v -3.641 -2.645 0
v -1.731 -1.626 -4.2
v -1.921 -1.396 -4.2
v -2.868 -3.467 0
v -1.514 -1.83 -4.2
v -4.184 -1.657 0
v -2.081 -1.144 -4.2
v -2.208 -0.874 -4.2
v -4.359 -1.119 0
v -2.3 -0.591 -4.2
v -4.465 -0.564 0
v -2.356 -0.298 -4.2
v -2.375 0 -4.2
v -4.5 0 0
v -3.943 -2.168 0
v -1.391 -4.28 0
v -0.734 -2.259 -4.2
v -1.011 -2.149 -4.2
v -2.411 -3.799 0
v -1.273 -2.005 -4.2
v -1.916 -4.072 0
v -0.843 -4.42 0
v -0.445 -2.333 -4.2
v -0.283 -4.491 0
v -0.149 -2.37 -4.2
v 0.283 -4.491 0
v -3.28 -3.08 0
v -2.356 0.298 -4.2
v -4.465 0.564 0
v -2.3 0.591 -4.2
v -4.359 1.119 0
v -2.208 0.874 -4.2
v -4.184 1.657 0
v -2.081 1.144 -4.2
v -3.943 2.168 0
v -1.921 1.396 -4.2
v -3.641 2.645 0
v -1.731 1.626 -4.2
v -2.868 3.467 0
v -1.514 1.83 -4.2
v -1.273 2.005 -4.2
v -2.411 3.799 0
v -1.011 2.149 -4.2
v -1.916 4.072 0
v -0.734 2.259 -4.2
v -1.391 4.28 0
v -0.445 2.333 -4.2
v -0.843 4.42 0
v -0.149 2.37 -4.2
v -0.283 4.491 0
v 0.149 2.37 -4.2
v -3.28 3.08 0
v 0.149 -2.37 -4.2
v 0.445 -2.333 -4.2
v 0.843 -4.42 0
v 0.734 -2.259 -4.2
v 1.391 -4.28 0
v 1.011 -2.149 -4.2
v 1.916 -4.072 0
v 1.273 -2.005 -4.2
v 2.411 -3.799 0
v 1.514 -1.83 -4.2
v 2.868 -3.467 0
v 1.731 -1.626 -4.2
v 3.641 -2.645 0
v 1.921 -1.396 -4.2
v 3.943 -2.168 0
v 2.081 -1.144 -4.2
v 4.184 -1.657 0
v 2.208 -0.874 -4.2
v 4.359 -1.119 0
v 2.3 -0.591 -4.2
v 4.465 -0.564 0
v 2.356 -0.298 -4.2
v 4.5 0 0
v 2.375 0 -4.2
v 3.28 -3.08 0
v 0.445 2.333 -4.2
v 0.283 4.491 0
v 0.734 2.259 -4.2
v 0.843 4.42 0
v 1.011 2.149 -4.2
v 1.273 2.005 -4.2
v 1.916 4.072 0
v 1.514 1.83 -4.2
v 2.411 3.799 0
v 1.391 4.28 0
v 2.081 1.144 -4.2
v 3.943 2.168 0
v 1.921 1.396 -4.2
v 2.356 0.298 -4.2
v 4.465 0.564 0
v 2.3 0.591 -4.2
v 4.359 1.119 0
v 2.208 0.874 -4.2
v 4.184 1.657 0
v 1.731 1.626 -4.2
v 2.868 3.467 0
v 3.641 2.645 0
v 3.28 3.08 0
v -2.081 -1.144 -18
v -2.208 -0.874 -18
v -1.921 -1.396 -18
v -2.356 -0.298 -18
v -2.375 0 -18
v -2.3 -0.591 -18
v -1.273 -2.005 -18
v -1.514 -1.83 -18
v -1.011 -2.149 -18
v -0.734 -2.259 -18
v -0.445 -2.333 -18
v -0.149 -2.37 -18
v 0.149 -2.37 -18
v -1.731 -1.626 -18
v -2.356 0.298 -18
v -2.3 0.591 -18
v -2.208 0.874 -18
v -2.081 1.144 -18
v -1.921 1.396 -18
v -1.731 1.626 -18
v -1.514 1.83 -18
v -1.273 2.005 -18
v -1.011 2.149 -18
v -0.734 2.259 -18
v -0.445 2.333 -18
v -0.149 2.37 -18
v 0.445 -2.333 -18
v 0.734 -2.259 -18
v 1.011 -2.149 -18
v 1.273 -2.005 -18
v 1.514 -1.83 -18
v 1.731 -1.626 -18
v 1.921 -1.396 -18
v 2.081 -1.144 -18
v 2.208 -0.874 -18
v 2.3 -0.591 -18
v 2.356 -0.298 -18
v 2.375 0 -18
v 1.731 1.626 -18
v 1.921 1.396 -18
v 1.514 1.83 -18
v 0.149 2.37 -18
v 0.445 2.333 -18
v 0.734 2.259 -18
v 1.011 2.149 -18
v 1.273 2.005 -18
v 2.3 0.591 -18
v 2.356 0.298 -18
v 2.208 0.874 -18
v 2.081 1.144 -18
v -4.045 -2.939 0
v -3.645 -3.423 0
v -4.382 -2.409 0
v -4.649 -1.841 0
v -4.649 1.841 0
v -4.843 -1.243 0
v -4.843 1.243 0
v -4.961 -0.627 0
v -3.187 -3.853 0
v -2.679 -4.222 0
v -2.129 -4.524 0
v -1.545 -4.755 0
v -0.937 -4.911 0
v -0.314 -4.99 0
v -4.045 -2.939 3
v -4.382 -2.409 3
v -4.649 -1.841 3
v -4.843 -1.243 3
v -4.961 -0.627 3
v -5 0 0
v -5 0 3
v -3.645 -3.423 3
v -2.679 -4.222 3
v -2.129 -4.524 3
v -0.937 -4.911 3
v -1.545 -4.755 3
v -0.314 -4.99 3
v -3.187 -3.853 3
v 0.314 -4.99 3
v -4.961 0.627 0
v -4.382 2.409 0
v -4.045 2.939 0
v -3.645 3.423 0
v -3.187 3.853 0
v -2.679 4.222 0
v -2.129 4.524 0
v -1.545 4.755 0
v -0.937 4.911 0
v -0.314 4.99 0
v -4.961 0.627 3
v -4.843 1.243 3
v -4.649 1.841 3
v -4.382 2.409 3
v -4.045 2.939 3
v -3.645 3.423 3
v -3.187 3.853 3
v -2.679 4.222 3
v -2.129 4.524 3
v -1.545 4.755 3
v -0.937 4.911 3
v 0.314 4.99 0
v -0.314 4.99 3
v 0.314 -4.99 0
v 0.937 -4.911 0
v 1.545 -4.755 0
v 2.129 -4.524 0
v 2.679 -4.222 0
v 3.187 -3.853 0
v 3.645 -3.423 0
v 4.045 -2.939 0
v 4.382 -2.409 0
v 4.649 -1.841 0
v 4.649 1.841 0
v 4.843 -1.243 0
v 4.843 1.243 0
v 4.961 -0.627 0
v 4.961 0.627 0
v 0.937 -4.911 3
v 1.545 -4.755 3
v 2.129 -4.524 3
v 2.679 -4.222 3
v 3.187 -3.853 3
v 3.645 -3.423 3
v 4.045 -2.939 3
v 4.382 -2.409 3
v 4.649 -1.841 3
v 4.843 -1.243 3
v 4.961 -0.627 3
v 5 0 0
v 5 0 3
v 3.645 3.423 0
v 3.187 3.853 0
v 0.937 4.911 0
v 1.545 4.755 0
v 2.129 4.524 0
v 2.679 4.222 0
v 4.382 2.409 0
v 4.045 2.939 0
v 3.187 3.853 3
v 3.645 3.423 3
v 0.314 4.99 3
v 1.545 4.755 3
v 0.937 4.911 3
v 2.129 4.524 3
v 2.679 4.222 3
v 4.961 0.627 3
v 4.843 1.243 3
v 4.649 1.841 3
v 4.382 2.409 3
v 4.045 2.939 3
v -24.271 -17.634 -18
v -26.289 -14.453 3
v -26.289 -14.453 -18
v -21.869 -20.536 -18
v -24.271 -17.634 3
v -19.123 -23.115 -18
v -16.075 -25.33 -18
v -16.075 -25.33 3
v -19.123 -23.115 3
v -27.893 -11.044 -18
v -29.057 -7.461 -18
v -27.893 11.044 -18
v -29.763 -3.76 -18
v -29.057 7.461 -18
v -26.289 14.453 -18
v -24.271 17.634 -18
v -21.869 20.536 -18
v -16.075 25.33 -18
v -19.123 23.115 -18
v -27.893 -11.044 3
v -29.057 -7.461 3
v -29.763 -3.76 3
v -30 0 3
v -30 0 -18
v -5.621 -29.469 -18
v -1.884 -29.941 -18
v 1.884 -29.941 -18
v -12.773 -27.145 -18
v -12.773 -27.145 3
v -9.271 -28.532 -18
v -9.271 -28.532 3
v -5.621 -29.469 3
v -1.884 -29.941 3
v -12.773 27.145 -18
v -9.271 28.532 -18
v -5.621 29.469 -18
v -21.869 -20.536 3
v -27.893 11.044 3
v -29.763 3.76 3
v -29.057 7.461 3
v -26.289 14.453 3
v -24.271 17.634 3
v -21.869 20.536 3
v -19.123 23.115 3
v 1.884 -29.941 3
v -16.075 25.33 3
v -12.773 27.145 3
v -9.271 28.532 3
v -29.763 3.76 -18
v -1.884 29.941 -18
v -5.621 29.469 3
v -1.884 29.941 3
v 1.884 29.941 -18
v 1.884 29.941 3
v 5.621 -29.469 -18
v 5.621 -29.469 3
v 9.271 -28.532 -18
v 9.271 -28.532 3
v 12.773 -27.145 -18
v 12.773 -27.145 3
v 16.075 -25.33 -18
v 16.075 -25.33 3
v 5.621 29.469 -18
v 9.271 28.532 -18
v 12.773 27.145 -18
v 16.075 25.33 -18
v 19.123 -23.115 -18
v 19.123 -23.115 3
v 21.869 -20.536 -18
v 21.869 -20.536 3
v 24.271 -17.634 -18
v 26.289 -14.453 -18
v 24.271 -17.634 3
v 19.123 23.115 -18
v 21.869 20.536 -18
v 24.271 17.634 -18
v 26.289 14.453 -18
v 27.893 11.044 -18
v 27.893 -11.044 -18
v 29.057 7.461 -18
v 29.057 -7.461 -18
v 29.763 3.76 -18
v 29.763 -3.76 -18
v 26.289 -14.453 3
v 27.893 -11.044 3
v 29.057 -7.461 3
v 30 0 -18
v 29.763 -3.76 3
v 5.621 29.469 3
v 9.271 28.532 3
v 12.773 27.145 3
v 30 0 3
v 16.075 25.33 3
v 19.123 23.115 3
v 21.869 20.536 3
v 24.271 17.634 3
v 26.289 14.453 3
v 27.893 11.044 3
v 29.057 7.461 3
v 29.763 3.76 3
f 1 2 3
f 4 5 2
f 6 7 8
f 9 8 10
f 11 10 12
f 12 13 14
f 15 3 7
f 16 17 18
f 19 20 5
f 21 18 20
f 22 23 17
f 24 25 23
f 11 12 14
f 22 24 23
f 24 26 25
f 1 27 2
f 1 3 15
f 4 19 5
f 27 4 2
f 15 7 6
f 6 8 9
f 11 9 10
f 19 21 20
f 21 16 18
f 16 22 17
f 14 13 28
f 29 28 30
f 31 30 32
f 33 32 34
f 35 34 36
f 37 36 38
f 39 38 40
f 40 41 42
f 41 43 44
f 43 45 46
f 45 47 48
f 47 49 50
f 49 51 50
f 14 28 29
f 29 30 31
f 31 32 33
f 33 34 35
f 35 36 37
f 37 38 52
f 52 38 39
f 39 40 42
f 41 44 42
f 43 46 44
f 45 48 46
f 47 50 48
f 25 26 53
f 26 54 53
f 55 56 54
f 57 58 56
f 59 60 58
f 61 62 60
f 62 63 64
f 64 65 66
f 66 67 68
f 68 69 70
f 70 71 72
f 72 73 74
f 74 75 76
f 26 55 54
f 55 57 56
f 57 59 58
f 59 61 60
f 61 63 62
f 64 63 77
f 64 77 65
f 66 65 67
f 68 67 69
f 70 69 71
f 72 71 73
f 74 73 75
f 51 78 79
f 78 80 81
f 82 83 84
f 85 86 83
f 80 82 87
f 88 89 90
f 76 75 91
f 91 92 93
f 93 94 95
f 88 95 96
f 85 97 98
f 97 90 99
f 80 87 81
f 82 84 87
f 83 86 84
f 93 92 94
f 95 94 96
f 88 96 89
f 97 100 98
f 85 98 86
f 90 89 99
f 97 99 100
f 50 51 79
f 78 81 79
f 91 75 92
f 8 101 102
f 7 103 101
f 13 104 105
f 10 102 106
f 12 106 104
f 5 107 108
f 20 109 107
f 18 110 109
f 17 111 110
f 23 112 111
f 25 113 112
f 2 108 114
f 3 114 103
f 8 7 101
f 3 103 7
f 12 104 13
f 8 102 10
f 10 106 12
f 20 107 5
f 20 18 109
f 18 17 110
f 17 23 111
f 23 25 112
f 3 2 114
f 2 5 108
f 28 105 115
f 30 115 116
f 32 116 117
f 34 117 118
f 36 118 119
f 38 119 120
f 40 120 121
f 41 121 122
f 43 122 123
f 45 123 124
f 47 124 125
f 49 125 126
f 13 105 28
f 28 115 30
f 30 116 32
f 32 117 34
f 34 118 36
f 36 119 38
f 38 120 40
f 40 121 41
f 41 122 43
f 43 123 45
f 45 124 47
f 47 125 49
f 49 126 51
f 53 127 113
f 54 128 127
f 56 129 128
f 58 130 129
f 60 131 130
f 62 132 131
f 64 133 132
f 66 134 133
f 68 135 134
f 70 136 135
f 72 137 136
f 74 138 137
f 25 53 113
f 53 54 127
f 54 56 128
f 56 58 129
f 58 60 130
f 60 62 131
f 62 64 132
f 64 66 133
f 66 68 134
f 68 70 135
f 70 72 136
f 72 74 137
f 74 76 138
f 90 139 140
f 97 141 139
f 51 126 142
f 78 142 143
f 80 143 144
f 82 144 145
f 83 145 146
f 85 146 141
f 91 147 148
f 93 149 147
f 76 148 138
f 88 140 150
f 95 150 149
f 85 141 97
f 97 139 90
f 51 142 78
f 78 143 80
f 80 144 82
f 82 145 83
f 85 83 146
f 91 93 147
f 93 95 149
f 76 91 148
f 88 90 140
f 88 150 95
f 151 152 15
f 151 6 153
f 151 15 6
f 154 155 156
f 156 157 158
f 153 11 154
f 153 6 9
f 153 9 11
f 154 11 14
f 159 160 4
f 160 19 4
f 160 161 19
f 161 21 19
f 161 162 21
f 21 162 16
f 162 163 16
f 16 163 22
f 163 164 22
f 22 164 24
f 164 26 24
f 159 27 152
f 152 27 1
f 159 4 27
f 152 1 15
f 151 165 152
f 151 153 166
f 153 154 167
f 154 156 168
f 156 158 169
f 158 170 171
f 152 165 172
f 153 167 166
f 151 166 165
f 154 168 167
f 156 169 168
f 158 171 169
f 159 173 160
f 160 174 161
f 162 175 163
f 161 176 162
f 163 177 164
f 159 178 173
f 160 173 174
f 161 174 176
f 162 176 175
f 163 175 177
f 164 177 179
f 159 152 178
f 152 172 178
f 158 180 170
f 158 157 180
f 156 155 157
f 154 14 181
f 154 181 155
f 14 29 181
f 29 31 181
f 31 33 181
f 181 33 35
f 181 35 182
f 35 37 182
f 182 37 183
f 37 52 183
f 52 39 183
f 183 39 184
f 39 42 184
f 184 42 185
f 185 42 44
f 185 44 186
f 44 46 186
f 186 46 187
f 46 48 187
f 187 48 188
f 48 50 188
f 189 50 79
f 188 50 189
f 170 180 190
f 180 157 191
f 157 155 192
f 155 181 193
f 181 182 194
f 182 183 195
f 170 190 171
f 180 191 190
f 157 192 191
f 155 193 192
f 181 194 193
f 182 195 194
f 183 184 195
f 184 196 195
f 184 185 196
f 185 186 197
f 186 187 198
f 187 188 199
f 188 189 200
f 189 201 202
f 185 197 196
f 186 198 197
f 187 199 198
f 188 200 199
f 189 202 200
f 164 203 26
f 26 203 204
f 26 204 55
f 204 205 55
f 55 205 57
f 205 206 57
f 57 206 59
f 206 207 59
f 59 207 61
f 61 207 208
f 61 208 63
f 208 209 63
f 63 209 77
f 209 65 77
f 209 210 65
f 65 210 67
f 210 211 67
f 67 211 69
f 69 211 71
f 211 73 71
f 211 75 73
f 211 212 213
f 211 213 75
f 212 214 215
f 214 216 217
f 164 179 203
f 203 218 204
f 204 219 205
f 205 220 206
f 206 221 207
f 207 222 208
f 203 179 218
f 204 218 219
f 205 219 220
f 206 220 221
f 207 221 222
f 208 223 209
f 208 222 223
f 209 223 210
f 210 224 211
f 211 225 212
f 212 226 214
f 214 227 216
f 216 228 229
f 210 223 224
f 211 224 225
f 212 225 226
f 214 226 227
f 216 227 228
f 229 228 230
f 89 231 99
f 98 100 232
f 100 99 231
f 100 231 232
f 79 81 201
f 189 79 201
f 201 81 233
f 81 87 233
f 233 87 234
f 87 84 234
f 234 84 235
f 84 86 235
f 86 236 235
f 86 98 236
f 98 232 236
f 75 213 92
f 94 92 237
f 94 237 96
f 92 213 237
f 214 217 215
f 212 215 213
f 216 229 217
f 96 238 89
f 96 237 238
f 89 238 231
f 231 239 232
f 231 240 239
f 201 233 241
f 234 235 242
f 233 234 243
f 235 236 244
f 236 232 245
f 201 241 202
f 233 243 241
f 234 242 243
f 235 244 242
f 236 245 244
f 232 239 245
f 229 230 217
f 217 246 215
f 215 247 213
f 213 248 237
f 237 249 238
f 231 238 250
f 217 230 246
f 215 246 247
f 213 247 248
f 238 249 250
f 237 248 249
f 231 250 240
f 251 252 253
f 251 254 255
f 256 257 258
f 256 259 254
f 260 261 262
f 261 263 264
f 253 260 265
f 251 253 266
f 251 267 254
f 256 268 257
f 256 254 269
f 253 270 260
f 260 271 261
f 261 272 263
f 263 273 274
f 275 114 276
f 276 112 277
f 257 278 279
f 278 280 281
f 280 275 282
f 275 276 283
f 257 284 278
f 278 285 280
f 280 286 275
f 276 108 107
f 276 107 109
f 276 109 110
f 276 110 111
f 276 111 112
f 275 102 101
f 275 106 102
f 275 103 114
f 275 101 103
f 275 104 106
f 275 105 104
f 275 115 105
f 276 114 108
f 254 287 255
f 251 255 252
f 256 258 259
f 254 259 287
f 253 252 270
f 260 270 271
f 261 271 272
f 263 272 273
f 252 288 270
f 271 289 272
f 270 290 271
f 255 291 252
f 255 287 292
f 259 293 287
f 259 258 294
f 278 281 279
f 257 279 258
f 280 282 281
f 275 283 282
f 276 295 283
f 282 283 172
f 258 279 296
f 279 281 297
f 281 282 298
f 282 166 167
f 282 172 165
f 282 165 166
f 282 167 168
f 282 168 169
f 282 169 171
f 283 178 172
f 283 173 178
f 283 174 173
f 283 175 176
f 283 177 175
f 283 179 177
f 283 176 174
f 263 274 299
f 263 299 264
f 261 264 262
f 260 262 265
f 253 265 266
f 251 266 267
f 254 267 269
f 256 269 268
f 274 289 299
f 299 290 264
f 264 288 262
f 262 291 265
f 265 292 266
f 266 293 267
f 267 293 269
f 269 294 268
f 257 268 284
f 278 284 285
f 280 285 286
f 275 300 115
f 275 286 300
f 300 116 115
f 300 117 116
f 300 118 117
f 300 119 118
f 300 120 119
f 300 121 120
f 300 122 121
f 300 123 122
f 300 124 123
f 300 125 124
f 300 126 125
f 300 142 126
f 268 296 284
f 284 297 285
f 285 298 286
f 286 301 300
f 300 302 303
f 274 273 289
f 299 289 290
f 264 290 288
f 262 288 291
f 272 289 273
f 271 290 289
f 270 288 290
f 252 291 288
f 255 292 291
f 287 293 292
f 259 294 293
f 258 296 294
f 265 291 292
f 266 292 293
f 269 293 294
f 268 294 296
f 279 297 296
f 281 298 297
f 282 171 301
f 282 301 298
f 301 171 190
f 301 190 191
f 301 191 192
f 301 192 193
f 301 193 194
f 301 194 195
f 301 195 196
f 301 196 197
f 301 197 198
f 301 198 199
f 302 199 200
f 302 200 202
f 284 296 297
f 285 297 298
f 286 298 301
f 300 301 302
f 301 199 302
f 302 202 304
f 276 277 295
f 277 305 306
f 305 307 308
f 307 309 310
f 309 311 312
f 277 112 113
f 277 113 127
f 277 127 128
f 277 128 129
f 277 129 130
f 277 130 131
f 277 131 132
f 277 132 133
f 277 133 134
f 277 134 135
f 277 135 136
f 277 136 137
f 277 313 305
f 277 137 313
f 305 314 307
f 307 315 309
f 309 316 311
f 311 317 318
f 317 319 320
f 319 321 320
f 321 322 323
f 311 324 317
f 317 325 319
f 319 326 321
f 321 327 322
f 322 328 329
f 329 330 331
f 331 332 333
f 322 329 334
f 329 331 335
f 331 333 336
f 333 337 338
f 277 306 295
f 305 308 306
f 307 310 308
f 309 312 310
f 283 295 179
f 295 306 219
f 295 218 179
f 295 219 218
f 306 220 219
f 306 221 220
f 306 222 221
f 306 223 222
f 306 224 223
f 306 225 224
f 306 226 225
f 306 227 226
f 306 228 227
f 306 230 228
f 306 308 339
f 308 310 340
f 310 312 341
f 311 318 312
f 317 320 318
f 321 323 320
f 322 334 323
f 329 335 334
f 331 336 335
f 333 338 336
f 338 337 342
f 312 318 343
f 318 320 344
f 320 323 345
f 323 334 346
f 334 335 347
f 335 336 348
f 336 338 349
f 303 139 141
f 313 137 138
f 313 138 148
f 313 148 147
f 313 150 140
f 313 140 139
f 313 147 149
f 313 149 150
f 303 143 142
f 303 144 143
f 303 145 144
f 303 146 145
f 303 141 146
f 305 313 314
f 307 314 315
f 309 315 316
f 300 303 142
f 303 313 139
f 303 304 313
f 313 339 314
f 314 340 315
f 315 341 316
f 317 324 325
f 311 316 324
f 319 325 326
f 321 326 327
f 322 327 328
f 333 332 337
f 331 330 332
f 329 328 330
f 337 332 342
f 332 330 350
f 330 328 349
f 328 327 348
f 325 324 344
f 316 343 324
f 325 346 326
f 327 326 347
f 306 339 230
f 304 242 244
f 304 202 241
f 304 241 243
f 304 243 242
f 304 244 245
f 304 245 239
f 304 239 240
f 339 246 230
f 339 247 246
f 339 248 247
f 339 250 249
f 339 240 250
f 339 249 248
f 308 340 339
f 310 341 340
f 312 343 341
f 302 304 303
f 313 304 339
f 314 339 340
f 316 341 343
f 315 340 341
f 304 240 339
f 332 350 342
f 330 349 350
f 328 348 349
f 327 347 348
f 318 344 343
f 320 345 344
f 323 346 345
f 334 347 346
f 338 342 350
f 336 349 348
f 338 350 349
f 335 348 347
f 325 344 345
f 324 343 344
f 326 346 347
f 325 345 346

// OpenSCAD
$fn = 50;

difference() {
	union() {
		translate(v = [0, 0, -18.0]) {
			cylinder(h = 21, r = 30.0);
		}
	}
	union() {
		translate(v = [0, 0, 0]) {
			rotate(a = [0, 0, 0]) {
				difference() {
					union() {
						translate(v = [0, 0, -21.0]) {
							cylinder(h = 21, r = 2.25);
						}
						translate(v = [0, 0, -4.2]) {
							cylinder(h = 4.2, r1 = 2.375, r2 = 4.5);
						}
						translate(v = [0, 0, -21.0]) {
							cylinder(h = 21, r = 2.375);
						}
						translate(v = [0, 0, -21.0]) {
							cylinder(h = 21, r = 2.25);
						}
					}
					union();
				}
			}
		}
		#cylinder(h = 3, r = 5.0);
	}
}
